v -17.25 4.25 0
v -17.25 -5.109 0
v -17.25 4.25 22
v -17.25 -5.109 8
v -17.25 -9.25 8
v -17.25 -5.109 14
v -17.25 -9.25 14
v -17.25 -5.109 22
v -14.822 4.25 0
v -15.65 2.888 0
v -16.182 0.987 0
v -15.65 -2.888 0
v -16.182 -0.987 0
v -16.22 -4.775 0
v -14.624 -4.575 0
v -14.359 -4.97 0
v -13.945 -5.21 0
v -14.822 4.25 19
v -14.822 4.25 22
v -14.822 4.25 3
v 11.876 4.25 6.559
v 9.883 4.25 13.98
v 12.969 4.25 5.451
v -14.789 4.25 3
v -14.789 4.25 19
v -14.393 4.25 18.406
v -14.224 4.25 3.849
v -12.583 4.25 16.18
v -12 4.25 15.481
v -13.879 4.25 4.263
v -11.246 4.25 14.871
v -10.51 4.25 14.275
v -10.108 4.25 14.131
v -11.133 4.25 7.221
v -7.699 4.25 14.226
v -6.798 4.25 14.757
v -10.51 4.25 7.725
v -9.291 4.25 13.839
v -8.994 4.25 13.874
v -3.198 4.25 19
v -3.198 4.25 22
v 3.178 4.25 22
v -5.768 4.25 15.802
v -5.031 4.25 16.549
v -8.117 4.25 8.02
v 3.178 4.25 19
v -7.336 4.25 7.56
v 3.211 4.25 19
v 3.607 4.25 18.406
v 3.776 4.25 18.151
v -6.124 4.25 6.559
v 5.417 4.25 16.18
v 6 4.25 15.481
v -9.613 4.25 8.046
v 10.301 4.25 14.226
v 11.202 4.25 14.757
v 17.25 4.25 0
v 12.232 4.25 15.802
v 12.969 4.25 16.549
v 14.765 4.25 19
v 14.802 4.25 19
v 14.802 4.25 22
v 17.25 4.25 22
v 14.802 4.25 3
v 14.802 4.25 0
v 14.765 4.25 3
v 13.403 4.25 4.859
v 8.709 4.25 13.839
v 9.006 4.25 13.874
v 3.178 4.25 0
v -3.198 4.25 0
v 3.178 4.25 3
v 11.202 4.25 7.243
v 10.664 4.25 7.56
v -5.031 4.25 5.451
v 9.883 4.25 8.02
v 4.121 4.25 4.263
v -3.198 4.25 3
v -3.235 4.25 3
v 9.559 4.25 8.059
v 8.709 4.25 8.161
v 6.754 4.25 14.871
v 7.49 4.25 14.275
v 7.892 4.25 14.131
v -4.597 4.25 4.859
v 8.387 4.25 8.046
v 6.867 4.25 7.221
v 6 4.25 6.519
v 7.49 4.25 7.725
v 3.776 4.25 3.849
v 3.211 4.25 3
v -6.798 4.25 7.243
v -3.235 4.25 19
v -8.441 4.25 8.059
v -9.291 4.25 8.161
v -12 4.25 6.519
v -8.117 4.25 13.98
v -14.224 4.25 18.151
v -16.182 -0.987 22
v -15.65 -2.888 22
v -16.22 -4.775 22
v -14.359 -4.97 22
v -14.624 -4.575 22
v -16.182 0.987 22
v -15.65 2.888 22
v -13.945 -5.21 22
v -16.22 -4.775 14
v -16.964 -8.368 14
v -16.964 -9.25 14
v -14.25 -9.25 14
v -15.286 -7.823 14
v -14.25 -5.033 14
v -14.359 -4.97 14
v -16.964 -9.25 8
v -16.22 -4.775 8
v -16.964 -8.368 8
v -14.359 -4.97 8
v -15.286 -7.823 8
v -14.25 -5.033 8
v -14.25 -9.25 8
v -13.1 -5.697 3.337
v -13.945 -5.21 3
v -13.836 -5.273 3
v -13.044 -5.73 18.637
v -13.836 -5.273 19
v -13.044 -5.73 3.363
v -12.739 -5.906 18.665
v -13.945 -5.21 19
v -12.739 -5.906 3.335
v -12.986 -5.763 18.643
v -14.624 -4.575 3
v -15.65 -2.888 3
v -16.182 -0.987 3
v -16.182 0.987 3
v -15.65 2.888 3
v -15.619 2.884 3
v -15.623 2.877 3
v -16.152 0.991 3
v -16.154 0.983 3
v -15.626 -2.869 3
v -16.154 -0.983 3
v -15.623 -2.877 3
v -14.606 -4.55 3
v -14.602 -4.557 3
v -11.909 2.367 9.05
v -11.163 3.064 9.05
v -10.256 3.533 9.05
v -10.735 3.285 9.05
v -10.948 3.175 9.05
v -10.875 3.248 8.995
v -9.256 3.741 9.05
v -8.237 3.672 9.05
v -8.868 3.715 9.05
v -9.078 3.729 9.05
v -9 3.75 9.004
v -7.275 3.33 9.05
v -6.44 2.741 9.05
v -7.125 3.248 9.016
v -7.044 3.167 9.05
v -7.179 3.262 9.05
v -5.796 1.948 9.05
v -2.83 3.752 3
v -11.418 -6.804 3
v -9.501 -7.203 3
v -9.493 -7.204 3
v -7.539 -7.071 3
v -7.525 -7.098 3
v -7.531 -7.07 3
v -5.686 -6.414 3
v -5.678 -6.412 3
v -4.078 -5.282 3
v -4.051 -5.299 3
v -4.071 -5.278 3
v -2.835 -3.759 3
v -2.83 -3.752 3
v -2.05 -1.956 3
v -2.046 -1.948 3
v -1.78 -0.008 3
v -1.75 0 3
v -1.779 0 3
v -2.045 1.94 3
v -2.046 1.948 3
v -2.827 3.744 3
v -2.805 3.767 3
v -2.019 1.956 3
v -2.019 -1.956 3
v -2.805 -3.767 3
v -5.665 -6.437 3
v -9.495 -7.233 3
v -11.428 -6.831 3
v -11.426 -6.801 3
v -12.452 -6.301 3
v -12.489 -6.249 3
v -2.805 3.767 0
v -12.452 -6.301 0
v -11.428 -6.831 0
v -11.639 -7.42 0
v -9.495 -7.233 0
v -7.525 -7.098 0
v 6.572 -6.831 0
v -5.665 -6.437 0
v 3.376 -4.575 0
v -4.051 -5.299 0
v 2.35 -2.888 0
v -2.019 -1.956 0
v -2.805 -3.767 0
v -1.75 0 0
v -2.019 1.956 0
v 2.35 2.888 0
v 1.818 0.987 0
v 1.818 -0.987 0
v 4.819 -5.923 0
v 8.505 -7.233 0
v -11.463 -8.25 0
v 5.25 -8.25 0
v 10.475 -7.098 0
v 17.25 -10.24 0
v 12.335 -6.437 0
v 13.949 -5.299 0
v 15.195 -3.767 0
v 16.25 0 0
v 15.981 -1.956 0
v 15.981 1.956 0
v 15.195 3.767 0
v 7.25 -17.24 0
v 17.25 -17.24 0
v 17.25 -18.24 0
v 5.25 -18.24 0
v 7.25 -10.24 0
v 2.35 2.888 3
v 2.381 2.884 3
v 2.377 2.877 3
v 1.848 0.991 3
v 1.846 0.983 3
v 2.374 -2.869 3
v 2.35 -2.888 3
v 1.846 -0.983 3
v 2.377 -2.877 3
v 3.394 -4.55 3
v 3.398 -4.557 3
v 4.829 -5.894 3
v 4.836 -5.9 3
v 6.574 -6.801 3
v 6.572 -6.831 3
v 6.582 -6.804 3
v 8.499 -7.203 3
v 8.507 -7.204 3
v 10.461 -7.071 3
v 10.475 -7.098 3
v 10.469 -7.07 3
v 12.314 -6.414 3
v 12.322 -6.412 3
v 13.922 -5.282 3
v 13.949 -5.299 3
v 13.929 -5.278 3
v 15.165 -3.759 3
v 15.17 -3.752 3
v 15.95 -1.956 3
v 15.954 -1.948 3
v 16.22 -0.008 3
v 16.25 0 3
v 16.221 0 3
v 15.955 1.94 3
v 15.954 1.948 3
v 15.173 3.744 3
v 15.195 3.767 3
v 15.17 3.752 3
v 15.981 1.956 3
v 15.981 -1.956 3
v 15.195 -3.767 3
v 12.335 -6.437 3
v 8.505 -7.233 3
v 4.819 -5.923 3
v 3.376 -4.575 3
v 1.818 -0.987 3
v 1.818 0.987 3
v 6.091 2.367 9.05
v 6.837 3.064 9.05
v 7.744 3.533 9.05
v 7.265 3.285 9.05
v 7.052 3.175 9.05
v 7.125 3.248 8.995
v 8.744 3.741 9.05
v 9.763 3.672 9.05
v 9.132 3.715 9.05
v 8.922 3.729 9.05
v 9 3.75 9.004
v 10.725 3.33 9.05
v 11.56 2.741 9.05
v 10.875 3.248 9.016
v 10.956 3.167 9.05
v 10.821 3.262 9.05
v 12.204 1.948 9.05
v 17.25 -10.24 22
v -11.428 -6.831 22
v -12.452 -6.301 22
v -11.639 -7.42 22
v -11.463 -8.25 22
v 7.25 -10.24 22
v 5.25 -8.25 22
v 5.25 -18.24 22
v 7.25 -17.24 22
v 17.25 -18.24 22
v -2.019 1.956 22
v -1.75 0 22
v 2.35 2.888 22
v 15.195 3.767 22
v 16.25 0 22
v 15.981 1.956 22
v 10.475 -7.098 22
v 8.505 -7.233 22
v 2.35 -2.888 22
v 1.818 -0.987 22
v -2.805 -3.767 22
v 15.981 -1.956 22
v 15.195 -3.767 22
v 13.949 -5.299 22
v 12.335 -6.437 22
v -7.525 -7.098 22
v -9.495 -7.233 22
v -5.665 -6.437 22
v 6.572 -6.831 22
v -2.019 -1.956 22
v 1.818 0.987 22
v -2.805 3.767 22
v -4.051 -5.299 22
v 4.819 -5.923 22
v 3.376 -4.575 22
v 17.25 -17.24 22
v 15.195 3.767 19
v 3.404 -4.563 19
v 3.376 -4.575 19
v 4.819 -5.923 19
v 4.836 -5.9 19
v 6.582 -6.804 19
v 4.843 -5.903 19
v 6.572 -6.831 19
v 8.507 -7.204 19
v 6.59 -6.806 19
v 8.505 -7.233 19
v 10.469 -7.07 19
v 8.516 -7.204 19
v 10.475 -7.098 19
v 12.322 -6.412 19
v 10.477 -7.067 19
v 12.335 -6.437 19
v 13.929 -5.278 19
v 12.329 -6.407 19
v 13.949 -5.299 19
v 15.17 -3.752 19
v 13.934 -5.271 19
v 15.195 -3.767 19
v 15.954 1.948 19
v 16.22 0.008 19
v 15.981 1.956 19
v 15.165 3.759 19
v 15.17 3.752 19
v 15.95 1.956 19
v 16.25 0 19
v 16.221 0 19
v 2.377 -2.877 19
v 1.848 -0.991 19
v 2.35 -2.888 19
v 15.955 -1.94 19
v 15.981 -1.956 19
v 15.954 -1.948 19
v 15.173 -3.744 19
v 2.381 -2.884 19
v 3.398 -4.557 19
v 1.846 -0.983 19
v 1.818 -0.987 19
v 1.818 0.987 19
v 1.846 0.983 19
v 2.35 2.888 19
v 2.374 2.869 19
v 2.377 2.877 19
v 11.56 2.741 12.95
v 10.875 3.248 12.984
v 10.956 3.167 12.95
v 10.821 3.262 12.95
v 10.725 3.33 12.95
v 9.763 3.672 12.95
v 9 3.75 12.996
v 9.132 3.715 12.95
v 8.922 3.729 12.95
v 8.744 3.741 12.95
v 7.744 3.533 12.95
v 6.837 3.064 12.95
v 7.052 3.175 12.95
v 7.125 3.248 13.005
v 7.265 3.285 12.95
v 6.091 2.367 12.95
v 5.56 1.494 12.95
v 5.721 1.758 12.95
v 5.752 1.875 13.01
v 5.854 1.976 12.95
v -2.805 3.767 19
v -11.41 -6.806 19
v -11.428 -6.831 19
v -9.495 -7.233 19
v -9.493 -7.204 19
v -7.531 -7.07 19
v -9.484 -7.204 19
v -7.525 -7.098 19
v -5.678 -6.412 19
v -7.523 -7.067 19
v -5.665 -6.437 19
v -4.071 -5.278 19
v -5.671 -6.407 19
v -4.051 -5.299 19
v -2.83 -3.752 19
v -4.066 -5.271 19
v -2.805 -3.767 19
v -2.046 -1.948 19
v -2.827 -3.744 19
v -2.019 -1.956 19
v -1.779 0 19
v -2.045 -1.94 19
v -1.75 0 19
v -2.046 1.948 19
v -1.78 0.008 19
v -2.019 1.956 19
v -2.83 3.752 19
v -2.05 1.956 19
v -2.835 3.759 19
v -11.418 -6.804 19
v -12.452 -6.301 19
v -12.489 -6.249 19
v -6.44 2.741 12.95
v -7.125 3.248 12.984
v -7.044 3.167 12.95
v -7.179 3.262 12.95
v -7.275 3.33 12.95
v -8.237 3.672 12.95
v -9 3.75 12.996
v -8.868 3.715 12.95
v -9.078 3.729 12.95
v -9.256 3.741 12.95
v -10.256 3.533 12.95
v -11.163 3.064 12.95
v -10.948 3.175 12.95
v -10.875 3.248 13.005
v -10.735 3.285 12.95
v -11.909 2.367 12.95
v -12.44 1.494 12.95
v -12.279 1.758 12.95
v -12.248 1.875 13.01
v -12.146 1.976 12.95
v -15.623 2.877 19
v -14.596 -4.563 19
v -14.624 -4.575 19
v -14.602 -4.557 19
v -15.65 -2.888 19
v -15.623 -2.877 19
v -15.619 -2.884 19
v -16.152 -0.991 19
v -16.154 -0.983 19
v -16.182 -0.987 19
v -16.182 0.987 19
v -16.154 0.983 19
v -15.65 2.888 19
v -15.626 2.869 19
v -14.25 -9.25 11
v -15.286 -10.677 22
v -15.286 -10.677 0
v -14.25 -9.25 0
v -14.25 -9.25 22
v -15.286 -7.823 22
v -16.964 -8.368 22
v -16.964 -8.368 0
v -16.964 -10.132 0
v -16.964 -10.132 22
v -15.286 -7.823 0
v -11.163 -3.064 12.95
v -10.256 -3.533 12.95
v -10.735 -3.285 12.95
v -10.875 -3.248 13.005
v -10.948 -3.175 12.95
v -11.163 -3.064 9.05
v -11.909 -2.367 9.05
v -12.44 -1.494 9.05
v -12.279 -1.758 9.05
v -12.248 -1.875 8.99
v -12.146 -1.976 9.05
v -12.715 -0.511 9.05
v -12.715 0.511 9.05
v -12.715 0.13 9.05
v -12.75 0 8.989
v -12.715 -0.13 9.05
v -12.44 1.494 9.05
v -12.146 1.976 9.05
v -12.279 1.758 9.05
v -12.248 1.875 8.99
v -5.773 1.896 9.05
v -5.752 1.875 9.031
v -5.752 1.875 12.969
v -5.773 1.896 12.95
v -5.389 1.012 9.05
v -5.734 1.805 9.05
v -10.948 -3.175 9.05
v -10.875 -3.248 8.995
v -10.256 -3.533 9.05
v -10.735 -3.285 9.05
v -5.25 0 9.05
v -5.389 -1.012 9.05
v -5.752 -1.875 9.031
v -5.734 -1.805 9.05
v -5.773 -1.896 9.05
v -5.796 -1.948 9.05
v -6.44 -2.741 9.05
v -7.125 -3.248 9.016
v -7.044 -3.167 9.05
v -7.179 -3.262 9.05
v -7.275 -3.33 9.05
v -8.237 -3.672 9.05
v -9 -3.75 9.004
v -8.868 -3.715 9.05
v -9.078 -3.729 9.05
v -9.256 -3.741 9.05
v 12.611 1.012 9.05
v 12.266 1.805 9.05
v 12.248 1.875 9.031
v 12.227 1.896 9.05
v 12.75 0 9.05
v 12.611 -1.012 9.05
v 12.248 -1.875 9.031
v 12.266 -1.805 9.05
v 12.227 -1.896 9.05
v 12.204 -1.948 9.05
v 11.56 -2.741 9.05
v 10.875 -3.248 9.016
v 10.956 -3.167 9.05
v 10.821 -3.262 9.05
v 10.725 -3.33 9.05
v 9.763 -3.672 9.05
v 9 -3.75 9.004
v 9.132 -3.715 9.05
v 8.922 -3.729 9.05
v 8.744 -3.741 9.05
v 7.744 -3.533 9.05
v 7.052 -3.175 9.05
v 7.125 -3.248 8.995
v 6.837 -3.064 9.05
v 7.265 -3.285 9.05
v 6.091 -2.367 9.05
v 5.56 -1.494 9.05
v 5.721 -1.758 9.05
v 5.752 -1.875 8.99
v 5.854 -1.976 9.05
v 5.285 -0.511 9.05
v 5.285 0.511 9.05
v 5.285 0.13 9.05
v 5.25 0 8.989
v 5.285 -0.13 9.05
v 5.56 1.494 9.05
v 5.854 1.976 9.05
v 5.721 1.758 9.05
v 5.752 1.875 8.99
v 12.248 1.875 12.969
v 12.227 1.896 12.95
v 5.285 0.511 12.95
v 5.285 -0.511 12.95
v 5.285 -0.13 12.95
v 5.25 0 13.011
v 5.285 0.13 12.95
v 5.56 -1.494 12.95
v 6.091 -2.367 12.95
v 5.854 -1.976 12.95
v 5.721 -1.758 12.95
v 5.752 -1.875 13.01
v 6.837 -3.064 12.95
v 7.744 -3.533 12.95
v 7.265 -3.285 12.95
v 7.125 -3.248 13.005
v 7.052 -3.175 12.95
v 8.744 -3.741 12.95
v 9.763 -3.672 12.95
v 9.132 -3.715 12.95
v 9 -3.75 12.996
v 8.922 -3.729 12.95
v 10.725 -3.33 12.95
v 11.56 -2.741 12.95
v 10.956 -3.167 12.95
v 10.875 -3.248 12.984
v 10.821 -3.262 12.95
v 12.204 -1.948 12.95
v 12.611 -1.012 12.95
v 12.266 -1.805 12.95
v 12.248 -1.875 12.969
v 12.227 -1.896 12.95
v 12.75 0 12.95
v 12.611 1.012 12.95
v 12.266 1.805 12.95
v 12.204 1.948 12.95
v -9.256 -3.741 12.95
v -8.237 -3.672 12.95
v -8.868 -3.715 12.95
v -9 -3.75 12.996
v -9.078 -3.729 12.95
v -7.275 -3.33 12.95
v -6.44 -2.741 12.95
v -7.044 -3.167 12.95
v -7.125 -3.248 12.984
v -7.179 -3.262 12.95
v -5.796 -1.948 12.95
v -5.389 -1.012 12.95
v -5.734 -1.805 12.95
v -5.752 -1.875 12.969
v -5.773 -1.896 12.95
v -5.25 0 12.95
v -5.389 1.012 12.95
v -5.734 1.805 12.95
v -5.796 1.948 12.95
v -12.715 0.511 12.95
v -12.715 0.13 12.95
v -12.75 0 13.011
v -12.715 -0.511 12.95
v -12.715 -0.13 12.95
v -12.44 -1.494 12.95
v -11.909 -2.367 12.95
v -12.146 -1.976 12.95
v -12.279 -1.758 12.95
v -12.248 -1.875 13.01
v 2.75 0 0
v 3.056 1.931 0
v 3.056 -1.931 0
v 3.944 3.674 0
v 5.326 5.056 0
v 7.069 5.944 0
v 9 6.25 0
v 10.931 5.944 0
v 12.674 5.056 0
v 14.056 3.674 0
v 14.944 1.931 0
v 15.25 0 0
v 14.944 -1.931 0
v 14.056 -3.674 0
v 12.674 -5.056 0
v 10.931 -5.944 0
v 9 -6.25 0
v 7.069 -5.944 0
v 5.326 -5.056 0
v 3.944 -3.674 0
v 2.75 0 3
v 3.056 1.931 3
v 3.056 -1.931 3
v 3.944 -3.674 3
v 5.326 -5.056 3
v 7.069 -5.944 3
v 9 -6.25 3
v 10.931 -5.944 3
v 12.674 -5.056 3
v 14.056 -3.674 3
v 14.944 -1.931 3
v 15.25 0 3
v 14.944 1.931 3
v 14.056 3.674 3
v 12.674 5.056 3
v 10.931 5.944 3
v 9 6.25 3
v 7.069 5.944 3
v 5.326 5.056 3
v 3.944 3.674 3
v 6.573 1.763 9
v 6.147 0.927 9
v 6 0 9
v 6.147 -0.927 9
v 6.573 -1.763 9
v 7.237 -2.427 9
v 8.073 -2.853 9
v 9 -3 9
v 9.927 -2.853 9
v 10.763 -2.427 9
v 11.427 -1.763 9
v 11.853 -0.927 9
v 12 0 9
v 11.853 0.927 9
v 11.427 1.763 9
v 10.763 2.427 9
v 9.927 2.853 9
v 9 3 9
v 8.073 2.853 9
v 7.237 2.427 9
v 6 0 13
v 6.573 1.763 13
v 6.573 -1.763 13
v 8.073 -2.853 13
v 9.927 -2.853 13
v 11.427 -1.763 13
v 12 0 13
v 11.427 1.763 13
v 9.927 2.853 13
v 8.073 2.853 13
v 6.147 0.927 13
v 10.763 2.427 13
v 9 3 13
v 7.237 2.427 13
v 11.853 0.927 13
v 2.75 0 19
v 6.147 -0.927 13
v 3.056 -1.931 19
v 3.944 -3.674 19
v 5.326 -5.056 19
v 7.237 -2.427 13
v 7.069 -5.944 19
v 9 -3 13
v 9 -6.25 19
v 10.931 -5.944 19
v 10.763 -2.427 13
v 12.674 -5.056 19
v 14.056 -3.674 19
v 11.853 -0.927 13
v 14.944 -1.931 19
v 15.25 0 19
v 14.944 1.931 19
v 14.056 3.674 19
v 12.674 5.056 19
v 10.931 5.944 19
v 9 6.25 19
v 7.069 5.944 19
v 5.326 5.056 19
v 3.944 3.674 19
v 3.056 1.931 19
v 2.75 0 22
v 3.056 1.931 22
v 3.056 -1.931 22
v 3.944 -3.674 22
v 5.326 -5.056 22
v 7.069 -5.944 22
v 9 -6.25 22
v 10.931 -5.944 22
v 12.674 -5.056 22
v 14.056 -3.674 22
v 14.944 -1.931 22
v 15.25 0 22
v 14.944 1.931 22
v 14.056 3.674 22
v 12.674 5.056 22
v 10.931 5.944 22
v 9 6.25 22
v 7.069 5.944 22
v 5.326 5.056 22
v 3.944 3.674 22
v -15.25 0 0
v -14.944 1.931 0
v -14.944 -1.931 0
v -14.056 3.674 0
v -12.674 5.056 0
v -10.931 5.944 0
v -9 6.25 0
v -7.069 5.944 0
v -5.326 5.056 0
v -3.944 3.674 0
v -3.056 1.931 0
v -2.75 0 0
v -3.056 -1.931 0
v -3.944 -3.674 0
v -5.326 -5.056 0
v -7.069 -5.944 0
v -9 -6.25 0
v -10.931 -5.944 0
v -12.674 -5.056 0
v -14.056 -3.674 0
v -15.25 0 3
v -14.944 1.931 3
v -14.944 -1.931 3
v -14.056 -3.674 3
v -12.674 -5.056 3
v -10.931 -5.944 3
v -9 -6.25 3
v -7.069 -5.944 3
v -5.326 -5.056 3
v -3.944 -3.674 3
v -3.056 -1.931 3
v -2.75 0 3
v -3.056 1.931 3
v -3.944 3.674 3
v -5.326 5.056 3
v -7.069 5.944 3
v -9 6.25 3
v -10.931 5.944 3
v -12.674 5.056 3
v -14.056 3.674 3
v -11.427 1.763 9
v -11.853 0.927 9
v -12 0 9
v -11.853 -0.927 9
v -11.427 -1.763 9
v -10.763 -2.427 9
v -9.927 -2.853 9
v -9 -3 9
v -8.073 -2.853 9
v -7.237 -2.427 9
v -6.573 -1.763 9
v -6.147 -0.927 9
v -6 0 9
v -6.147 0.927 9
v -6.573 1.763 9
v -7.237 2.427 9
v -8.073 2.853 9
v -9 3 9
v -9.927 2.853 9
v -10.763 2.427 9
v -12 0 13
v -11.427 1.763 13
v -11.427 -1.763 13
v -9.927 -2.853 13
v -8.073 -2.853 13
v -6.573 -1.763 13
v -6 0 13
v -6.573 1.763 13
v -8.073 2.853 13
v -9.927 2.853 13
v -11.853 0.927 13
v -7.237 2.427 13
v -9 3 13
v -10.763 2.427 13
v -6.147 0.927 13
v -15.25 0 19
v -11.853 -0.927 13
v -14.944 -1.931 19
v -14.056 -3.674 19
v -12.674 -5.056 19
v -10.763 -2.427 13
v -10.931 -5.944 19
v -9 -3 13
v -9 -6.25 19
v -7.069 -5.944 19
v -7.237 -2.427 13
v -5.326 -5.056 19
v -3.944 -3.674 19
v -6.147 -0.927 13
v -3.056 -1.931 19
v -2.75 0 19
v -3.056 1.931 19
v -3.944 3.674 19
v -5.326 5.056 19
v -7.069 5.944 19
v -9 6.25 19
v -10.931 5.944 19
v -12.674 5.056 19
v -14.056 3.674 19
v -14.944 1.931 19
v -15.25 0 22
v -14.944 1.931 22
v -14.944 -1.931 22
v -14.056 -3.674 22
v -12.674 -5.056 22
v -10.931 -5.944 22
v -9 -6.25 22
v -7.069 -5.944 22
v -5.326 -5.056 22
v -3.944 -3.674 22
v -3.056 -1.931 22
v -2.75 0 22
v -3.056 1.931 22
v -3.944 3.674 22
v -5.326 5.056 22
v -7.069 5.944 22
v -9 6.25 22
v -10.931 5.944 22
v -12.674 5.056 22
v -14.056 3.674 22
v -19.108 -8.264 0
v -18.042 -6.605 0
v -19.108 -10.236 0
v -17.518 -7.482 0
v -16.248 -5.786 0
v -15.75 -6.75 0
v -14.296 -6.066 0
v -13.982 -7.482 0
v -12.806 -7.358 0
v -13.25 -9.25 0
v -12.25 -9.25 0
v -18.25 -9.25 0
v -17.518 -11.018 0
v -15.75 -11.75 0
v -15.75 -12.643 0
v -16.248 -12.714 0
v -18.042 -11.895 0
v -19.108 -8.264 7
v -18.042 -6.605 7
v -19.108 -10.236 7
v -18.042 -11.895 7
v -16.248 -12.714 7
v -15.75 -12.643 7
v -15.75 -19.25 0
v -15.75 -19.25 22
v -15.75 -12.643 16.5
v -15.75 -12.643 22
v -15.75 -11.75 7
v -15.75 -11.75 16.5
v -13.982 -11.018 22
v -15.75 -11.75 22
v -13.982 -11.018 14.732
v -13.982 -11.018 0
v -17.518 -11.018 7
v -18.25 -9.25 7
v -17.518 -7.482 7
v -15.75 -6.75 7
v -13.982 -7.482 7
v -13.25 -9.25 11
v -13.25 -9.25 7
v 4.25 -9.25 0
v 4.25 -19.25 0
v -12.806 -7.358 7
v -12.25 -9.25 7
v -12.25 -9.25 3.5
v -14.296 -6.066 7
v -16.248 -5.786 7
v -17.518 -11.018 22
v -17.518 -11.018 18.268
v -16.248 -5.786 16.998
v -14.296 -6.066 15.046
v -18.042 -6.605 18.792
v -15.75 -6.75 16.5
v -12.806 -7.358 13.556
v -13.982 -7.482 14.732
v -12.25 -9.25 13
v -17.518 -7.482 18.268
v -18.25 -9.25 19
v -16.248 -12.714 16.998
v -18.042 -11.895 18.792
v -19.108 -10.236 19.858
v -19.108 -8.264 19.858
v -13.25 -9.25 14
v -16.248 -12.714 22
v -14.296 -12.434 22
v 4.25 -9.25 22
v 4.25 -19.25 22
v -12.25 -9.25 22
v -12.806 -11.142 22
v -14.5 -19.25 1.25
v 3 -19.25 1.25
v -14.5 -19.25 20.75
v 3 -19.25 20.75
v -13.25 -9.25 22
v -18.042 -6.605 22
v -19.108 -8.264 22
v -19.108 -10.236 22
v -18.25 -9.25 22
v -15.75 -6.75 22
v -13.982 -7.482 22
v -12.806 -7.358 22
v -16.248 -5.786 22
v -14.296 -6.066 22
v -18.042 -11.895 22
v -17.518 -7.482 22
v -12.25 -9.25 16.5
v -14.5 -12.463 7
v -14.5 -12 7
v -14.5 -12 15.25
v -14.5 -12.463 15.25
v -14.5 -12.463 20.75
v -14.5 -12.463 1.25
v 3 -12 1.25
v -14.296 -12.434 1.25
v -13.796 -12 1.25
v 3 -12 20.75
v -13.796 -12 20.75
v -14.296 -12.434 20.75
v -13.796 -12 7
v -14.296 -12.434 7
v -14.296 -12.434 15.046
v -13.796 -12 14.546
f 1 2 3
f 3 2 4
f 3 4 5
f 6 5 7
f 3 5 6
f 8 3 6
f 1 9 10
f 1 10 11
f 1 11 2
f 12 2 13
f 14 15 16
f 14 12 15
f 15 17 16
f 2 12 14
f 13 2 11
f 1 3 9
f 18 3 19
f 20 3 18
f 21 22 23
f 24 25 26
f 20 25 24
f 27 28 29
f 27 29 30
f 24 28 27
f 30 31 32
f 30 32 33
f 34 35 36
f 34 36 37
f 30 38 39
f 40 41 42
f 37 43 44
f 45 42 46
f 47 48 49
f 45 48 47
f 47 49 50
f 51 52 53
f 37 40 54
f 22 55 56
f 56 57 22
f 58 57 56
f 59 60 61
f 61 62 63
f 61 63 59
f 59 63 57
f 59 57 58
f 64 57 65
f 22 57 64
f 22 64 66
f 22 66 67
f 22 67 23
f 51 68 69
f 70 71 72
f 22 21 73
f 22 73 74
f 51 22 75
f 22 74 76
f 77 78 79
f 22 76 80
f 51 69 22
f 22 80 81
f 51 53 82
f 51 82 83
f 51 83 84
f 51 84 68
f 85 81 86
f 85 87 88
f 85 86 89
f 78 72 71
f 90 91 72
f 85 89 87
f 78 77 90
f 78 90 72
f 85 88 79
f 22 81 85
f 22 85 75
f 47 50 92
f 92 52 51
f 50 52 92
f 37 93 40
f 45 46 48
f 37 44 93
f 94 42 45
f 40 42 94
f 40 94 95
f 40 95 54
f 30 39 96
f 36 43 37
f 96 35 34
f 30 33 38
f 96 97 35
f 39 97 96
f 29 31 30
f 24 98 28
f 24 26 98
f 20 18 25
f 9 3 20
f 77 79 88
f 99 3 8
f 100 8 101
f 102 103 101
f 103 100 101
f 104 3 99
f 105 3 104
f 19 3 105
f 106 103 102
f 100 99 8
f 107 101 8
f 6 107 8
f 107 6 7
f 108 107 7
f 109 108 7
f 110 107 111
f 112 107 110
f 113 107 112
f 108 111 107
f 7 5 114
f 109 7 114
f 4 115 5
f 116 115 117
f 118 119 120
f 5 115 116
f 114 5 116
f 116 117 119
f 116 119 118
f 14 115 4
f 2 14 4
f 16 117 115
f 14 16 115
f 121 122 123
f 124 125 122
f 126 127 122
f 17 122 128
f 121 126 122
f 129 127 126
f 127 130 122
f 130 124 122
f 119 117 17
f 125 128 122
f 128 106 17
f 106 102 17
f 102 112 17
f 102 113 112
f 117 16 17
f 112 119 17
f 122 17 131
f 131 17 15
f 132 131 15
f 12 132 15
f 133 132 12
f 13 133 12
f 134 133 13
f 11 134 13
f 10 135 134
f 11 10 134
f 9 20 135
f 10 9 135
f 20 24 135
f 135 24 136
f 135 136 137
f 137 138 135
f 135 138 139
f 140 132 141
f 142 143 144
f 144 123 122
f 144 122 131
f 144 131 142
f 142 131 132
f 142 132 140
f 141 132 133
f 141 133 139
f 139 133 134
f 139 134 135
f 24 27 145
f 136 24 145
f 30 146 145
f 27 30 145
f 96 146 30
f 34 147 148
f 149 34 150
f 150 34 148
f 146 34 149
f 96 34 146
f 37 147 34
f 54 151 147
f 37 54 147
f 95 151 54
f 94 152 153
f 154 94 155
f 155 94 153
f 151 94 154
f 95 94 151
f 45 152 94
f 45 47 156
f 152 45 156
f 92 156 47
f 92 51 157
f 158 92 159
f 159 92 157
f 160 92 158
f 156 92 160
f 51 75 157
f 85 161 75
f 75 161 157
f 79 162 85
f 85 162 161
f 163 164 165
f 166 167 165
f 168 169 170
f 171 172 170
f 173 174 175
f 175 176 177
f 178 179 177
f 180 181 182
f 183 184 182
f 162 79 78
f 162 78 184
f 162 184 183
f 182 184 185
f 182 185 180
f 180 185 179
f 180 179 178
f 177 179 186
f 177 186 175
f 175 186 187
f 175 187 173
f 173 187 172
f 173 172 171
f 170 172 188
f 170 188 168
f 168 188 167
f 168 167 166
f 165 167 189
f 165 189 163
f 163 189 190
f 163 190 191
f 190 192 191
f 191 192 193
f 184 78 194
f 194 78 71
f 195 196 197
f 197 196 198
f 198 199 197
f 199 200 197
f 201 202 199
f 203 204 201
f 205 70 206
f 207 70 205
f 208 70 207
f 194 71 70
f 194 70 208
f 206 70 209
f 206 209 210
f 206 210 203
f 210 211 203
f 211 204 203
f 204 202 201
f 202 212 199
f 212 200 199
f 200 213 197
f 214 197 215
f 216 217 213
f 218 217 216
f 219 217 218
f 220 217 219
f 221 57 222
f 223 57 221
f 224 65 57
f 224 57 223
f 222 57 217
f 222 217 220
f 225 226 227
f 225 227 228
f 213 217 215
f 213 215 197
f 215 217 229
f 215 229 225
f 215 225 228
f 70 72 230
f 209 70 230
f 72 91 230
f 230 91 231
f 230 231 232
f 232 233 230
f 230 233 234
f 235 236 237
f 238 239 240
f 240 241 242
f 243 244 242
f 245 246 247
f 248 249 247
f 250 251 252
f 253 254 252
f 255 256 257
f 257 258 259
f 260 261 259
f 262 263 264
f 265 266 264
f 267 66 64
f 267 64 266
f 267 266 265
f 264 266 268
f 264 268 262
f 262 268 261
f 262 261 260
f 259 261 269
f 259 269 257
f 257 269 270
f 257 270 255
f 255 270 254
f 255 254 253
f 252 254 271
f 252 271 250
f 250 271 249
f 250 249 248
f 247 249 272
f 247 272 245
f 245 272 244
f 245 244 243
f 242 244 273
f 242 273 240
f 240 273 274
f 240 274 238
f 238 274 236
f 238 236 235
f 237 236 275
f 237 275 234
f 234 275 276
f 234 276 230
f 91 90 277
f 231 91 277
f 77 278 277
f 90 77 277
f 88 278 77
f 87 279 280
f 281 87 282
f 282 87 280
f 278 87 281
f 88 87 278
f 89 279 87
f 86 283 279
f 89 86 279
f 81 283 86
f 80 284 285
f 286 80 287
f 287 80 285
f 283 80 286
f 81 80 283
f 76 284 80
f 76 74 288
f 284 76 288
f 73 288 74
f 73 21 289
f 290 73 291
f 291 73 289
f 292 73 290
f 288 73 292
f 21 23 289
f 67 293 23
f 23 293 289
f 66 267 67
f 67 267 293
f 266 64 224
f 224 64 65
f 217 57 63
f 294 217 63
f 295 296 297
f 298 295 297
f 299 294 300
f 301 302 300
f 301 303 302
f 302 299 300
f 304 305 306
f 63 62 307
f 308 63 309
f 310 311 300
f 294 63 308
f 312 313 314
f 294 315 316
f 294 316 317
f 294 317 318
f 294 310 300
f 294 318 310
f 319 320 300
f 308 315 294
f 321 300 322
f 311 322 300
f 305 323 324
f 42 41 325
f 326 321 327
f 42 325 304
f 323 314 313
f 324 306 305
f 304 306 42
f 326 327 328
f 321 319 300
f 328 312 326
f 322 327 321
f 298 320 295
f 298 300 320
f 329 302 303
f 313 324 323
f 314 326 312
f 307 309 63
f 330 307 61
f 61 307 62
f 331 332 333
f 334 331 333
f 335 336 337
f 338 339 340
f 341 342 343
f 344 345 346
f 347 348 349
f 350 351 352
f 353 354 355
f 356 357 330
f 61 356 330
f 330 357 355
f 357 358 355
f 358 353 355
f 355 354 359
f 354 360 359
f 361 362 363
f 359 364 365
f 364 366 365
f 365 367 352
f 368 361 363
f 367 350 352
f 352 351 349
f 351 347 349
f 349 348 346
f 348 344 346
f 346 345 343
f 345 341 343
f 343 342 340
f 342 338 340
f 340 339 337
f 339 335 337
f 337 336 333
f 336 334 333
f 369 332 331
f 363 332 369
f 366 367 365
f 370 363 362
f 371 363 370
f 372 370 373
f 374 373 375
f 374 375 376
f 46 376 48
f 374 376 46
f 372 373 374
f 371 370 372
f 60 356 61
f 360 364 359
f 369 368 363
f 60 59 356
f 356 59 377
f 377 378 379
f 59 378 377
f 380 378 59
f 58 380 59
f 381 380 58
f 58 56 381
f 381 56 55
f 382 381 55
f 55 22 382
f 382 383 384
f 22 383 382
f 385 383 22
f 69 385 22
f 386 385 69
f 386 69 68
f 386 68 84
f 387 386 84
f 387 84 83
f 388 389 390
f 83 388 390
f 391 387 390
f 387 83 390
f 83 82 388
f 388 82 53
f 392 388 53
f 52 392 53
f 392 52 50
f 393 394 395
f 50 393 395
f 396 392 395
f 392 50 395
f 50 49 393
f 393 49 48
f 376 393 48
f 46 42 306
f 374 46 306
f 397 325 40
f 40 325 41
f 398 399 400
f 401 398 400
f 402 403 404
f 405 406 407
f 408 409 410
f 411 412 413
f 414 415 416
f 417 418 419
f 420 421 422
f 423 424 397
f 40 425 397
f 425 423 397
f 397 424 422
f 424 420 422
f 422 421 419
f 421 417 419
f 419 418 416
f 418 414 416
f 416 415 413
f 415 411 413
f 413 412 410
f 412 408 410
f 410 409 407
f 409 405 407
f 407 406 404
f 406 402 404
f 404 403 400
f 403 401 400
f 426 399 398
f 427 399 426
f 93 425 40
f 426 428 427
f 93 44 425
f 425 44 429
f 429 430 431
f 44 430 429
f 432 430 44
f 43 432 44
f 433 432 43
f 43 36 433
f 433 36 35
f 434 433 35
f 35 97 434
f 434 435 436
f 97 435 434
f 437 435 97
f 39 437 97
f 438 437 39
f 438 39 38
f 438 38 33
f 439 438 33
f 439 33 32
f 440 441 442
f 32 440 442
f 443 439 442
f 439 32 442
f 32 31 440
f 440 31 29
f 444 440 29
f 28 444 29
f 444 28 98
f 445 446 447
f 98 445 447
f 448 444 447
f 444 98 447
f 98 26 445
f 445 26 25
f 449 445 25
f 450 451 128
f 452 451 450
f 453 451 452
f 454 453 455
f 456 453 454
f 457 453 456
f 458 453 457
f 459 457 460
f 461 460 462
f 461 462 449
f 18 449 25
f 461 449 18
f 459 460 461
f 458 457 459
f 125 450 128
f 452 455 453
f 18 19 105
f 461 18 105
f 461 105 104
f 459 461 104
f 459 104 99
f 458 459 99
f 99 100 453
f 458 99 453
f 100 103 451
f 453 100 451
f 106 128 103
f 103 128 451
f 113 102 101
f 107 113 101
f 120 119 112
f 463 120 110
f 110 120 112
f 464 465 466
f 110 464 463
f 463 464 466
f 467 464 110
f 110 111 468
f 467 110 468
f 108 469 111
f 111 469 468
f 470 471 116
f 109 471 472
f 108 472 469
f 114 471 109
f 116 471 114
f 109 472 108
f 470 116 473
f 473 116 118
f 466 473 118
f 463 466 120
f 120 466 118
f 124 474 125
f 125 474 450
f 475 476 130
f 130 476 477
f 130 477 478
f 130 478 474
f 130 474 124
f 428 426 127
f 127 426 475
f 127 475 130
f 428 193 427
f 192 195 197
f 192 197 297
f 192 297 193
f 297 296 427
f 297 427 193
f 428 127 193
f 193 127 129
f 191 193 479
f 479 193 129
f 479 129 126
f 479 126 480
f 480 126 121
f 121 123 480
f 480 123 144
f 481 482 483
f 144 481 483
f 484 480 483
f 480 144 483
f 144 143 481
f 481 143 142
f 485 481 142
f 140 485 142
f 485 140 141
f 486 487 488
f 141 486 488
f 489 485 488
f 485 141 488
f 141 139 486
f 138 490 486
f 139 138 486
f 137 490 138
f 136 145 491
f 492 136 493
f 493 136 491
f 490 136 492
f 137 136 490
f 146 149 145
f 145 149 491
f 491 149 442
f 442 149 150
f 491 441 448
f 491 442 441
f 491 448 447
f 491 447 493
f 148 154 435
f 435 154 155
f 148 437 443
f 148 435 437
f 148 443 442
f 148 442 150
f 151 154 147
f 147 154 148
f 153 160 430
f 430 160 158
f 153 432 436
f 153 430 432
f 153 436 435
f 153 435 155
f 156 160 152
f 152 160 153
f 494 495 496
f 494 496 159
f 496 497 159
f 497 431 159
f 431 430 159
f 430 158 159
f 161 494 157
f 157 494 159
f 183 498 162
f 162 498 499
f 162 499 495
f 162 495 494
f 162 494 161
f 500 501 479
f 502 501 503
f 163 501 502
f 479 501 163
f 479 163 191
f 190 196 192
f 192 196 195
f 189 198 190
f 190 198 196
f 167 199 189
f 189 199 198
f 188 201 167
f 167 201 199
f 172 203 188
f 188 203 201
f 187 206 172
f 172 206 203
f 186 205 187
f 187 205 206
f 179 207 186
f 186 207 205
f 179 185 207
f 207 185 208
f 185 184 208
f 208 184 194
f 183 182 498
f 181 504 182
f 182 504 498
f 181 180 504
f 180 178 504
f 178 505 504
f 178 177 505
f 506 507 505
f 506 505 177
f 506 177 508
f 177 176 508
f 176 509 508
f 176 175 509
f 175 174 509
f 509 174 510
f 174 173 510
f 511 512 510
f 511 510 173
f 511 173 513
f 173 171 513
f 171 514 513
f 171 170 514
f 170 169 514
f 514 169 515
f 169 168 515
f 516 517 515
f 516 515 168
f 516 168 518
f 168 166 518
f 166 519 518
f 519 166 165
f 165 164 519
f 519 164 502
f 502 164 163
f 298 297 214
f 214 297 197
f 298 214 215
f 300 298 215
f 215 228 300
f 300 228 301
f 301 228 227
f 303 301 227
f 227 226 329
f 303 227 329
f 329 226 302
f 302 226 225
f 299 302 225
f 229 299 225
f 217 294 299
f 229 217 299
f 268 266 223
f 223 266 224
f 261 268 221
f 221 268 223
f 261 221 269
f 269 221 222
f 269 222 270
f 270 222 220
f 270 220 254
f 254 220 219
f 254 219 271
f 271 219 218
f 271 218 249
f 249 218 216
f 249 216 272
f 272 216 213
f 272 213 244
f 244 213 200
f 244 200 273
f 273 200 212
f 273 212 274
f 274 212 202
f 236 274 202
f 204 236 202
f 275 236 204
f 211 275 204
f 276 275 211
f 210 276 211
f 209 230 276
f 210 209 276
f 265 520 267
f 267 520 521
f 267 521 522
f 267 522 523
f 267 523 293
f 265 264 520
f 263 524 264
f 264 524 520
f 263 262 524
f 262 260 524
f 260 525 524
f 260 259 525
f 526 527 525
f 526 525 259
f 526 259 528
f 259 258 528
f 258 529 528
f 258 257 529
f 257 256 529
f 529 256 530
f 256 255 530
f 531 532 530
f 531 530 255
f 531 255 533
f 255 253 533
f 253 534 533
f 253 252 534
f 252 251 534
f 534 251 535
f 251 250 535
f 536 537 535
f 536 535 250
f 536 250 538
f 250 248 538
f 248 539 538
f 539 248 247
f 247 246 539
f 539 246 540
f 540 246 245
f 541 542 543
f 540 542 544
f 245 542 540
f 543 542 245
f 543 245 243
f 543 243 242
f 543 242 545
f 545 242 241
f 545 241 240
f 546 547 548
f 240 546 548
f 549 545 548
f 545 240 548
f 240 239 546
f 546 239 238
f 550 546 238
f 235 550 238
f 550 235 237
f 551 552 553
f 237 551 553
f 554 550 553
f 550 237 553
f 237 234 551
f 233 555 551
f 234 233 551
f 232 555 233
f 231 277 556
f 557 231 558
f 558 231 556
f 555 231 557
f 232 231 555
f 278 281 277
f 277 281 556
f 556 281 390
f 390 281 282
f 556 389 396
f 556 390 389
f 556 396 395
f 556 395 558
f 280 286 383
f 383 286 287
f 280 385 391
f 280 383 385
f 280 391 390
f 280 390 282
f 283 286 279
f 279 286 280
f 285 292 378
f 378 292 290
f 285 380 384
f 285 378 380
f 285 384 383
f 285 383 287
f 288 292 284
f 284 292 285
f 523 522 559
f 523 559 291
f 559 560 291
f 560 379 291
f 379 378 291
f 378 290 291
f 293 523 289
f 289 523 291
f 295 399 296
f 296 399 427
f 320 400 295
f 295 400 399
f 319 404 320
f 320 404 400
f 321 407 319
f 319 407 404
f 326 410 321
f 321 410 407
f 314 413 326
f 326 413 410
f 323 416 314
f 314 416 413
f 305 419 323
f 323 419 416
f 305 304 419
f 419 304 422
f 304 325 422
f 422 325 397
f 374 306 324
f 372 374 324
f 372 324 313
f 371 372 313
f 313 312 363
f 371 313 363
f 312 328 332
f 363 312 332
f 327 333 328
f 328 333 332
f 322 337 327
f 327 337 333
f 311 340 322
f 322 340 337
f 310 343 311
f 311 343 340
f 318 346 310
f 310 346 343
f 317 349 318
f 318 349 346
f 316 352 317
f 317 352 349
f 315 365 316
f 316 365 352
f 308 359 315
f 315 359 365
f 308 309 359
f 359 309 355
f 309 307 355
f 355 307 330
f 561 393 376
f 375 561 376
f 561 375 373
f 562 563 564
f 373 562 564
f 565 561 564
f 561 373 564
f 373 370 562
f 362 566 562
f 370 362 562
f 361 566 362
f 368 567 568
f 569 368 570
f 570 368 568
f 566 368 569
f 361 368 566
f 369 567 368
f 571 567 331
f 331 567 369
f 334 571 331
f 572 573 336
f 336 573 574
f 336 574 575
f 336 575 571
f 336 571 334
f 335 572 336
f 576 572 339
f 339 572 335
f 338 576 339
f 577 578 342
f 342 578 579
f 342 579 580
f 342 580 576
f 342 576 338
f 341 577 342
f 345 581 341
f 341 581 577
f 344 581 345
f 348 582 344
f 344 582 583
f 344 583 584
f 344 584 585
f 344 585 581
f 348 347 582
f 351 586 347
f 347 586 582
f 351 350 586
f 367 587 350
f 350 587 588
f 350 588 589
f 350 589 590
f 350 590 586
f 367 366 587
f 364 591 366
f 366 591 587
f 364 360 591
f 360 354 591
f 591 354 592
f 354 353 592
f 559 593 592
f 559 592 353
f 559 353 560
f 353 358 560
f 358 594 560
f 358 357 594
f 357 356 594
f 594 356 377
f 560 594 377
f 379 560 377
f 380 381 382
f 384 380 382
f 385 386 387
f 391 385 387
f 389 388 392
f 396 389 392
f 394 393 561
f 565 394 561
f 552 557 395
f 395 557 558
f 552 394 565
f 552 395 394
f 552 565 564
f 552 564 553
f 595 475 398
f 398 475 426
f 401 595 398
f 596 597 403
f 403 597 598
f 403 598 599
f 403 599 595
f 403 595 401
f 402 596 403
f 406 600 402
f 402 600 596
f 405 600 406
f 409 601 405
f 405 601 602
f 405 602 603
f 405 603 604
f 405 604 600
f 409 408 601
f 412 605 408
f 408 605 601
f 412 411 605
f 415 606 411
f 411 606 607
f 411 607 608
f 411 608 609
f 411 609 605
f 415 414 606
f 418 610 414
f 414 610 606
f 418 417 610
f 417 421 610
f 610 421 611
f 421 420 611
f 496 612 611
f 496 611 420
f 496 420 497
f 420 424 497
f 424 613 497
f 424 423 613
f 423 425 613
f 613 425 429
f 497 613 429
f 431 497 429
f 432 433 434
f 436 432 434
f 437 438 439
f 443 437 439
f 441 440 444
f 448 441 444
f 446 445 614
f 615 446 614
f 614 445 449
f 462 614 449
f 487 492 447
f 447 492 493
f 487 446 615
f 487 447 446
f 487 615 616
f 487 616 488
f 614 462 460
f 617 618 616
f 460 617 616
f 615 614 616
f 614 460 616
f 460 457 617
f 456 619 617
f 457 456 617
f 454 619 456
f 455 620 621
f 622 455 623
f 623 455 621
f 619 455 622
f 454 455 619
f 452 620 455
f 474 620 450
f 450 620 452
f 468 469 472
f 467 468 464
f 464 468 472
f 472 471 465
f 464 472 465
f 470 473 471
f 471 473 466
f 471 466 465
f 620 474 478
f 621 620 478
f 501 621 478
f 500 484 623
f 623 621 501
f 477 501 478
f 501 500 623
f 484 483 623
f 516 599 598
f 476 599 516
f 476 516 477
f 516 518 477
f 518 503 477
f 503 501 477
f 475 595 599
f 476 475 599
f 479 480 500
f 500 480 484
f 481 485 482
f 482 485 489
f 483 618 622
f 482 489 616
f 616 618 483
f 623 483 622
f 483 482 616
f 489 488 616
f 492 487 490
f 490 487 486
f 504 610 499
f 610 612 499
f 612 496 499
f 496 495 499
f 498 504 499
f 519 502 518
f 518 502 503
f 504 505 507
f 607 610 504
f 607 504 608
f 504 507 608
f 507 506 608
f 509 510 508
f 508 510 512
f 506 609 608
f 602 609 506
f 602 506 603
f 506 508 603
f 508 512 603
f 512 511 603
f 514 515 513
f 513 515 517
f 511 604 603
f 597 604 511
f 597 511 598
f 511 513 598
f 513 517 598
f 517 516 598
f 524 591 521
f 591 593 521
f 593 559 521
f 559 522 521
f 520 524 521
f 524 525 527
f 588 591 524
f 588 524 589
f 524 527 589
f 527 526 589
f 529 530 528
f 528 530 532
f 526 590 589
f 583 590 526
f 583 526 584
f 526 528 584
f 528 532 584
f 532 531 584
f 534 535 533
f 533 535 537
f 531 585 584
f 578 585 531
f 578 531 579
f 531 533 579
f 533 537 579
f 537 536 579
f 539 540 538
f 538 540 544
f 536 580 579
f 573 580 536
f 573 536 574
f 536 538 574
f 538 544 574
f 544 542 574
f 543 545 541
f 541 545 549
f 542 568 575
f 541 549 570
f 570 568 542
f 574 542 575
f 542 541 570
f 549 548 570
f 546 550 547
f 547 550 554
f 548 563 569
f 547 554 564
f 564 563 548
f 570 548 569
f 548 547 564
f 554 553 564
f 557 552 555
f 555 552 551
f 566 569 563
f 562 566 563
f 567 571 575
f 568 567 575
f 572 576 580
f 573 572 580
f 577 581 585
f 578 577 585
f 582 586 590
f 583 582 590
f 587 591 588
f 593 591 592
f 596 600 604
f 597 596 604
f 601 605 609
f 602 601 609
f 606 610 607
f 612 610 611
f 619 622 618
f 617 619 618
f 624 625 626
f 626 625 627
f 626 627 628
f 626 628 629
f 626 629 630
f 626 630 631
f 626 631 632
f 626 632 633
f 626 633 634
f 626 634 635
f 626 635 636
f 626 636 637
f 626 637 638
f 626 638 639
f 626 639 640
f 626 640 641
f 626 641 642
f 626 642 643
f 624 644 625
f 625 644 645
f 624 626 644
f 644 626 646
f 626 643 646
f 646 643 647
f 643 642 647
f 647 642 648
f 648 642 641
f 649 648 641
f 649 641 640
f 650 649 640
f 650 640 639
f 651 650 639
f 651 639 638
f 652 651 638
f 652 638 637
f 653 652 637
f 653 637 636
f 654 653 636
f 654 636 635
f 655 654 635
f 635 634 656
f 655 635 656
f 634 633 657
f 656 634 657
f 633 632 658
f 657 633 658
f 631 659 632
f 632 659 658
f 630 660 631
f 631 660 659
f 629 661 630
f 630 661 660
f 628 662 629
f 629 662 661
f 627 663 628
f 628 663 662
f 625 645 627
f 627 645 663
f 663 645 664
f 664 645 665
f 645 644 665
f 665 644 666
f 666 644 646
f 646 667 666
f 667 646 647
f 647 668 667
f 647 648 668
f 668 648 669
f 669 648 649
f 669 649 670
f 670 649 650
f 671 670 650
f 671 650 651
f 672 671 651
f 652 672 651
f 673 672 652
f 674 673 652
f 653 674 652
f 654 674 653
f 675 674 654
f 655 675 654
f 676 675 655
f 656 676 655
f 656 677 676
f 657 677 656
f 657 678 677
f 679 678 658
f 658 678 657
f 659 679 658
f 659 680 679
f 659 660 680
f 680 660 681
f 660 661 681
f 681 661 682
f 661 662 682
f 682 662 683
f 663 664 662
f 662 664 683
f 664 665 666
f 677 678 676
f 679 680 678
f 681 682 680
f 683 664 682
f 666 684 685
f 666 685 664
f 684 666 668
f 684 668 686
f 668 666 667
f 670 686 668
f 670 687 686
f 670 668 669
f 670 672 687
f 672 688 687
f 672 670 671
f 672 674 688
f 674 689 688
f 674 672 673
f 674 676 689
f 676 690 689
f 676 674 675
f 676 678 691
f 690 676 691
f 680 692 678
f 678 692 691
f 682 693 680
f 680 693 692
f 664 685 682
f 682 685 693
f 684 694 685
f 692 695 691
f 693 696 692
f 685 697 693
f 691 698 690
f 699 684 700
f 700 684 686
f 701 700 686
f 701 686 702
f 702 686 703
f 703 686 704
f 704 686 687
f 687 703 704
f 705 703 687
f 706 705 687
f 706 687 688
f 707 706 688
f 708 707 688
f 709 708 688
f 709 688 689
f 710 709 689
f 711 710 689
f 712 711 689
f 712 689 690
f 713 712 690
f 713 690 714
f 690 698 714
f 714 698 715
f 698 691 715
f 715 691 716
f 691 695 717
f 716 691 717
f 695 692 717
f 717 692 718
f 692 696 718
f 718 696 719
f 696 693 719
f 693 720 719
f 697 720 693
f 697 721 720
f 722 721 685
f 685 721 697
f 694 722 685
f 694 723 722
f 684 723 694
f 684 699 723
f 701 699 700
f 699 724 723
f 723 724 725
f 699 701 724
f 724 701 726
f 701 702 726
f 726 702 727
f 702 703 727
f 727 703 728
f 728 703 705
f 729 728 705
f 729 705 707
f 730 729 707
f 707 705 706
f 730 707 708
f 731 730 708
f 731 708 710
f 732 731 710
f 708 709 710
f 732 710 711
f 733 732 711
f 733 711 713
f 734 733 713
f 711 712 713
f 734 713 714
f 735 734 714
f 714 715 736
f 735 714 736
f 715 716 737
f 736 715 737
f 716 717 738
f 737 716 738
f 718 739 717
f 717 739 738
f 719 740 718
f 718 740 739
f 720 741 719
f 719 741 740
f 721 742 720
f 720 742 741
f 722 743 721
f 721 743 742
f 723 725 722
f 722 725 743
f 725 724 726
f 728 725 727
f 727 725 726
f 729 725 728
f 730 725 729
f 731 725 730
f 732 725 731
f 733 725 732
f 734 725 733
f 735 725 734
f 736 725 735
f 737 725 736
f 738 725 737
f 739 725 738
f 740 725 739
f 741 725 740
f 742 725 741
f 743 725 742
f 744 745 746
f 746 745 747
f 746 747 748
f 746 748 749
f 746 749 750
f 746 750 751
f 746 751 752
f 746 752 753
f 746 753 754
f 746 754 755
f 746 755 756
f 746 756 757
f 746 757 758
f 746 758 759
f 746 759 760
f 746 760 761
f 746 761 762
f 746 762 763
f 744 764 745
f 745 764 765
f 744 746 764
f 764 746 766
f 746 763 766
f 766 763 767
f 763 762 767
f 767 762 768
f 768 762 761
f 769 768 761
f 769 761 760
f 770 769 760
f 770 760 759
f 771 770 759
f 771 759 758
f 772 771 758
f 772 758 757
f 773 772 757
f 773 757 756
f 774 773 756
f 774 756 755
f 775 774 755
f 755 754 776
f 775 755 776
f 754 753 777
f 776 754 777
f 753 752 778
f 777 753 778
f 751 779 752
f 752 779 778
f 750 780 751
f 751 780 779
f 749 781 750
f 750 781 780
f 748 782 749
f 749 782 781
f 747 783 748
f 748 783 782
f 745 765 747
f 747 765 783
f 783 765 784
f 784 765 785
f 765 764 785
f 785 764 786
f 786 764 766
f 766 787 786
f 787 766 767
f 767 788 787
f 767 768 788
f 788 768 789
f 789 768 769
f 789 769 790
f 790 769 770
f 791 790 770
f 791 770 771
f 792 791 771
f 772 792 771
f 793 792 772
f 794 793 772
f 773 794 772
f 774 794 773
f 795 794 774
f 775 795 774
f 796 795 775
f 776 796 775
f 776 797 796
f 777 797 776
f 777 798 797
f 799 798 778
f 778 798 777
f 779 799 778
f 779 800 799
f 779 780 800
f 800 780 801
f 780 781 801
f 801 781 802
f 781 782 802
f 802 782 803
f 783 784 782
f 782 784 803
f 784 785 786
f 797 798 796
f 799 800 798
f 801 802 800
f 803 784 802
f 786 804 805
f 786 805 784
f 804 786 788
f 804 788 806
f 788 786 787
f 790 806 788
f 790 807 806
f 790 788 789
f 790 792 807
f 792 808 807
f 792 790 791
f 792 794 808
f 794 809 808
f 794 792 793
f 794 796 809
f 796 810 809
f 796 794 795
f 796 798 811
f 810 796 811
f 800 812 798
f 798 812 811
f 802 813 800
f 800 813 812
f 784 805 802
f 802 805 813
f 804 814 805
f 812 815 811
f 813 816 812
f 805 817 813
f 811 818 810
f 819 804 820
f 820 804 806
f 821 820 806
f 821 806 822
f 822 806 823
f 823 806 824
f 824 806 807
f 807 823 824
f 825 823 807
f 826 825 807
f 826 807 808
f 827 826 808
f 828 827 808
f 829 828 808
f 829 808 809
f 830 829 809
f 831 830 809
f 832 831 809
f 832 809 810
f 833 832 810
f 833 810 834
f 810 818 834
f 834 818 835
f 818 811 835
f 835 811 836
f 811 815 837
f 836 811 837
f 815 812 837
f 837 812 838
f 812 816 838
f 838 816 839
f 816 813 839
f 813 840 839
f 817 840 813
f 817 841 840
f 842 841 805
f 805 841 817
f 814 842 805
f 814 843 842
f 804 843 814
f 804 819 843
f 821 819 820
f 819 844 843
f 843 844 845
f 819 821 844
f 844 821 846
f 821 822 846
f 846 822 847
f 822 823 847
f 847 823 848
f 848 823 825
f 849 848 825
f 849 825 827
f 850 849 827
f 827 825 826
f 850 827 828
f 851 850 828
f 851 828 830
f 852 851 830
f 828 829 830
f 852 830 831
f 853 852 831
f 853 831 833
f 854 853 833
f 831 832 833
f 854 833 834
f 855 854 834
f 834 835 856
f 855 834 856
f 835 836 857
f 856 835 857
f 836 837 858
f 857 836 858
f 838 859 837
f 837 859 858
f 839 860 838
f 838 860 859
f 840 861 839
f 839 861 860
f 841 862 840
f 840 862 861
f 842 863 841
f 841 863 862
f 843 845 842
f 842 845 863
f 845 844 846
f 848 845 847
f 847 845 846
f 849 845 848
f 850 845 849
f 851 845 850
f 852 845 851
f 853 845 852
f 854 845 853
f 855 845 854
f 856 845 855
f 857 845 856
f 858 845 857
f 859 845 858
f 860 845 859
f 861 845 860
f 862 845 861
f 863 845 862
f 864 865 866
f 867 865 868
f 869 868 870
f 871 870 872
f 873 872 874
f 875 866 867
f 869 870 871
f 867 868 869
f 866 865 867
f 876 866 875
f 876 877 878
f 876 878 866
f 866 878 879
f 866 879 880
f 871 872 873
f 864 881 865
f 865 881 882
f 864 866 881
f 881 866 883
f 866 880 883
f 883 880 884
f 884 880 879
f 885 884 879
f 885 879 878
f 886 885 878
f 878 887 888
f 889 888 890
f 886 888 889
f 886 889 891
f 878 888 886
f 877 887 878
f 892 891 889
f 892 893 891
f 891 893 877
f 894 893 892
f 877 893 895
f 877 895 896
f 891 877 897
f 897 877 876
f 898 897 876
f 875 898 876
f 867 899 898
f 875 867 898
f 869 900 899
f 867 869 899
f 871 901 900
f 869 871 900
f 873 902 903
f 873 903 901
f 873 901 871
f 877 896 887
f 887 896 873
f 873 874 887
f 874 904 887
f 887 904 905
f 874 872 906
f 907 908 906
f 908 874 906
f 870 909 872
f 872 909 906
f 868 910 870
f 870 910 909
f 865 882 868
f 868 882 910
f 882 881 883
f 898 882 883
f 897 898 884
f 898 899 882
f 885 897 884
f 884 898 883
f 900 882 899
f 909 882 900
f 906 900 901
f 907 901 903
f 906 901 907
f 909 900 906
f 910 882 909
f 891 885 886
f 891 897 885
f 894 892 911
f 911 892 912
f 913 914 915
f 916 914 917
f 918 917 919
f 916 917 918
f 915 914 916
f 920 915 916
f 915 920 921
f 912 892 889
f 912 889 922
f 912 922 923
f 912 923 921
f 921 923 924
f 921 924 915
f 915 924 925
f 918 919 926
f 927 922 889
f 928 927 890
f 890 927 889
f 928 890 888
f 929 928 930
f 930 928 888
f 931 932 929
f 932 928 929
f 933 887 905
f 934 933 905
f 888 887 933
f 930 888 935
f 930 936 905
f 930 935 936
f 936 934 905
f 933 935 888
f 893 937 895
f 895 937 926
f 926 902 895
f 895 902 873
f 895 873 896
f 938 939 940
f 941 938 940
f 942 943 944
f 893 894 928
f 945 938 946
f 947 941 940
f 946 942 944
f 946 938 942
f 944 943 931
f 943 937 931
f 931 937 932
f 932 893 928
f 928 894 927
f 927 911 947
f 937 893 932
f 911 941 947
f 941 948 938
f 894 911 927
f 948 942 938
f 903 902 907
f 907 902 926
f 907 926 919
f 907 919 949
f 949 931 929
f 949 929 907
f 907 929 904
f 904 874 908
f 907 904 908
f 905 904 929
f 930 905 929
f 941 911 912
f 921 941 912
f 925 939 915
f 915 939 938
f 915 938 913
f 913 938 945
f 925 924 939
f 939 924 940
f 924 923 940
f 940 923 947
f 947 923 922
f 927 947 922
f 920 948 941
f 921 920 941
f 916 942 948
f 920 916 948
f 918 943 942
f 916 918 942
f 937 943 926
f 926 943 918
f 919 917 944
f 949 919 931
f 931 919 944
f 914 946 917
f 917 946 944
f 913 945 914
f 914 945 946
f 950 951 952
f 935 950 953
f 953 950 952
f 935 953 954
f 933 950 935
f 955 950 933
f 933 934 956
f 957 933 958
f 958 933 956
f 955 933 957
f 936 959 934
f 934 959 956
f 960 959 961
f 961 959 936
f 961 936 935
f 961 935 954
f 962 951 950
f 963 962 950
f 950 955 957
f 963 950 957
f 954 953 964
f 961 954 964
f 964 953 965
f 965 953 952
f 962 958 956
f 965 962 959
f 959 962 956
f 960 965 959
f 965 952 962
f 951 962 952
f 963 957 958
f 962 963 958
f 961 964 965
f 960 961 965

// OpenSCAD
// Tiny Toy Dump Truck
// No support needed, no assembly required (*)
// (*) some cleanup will probably be necessary, however
// Created by: Madscifi
// License - Public domain
// Inspired by (but not really derived from)
// toy tanker truck by jag (thingiverse thing:5273)

// Sliced with Skeinforge using:
//  0.2mm - Layer Thickness
//  2.5 - Perimeter Width over Thickness (ratio)

// V2	moved support_width definition to the start of the script, and fixed the positioning of the cab
//	so it is positioned correctly in the case that wheel_dia or bed_lift is modified.
//	As delivered, this version prints essentially the same as the previous version unless
//	you modify wheel_dia or bed_lift.

wheel_dia=12.5;
wheel_flat_thickness=3;
wheel_conic_dist=6;
wheel_base_dist=18;
wheel_cutout_extra=1;
axle_cutout=0.75;
axle_dia=6;
axle_len=4;
body_lift=2;
bed_axle_dia=3;
bed_axle_cutout=1;
bed_axle_bearing_extra=1;
bed_height=10;
bed_len=20;
bed_wall=2.5;
bed_axle_bearing_wall=1;
bed_bearing_cutout=1;
cab_sep=1;
cab_wall=2;
cab_roof=1;
support_width=6;

width=wheel_flat_thickness*2+wheel_conic_dist*2+axle_len;
length=wheel_base_dist+wheel_dia+wheel_cutout_extra*4;
bearing_dia=bed_axle_dia+bed_axle_cutout*2+bed_axle_bearing_wall*2;

// If you change the size of things this is the one value that is 
// completely emperical - you'll probably need to tweek this.
bed_axle_slice_offset=-width/4+support_width/2+bed_axle_cutout*2.5;

module wheel(extra,aextra)
{
	union()
	{
		translate([0,0,wheel_conic_dist]) cylinder(h=wheel_flat_thickness+extra,r=wheel_dia/2+extra);
		translate([0,0,-extra/20]) cylinder(h=wheel_conic_dist+extra/10,r1=axle_dia/2+aextra,r2=wheel_dia/2+extra);
	}
}
module axle(extra,aextra)
{
	union()
	{
		translate([0,-axle_len/2,0]) rotate([90,0,0]) wheel(extra,aextra);
		translate([0,axle_len/2,0]) rotate([-90,0,0]) wheel(extra,aextra);
		translate([0,axle_len/2+0.1,0]) rotate([90,0,0]) cylinder(h=axle_len+0.2,r=axle_dia/2+aextra);
	}
}


module bed()
{
	cutout_dia = bed_axle_dia+bed_axle_cutout*2;
	bearing_len=width/2-support_width/2-bed_axle_cutout;

	union()
	{
		difference()
		{
			translate([bed_len/2,0,bed_height/2]) 
				cube([bed_len,width,bed_height],center=true);
			translate([bed_len/2,0,bed_height/2+bed_axle_dia/2]) 
				cube([bed_len-bed_wall,width-bed_wall,bed_height-bed_wall],center=true);
			rotate([90,0,0]) cylinder(h=width+0.01,r=cutout_dia/2,center=true);
		}
		difference()
		{
			translate([0, width/4,0]) 
			difference()
			{
				rotate([90,0,0]) cylinder( h=width/2,r=bearing_dia/2,center=true);
				translate([0,bed_axle_slice_offset,0]) 
					rotate([0,0,45]) translate([-50,0,0]) 
						cube([100,100,100],center=true);
			}
			rotate([90,0,0]) cylinder( h=width+0.2, r=cutout_dia/2, center=true);
			
		}
		difference()
		{
			translate([0, -bearing_len/2-support_width/2-bed_axle_cutout,0]) 
				rotate([90,0,0]) 
					cylinder( h=bearing_len,r=bearing_dia/2,center=true);
			rotate([90,0,0]) cylinder( h=width+0.2, r=cutout_dia/2, center=true);
		}
	}
}

module bed_axle()
{
         union()
         {
		rotate([90,0,0]) cylinder(h=width,r=bed_axle_dia/2,center=true);
		translate([0,0,-bed_axle_dia]) cube([bed_axle_dia,6,bed_axle_dia*2],center=true);
          }
}

module bed_axle_cutout()
{
	rotate([90,0,0]) cylinder(h=width+0.1,r=bearing_dia/2+bed_bearing_cutout,center=true);
}

module cab()
{
	translate([-(length-bed_len-bed_axle_dia/2-cab_sep)/2,0,bed_height/2])
	difference()
	{
		cube([length-bed_len-bed_axle_dia/2-cab_sep,width,bed_height],center=true);
		translate([cab_wall,0,(cab_wall-cab_roof)/2]) cube([length-bed_len-bed_axle_dia/2-cab_sep,width+0.1,bed_height-cab_wall-cab_roof],center=true);
	}
}

translate([0,0,width/2])
rotate([90,0,0])
{
	union()
	{
		// body
		difference()
		{
			translate([0,0,body_lift]) cube([length,width,wheel_dia],center=true);
			translate([wheel_base_dist/2,0,0]) axle(wheel_cutout_extra,axle_cutout);
			translate([-wheel_base_dist/2,0,0]) axle(wheel_cutout_extra,axle_cutout);
			translate([-length/2+bed_axle_dia/2,0,wheel_dia/2+body_lift+1]) bed_axle_cutout();
		}
		
		// wheels and axles
		translate([wheel_base_dist/2,0,0]) axle(0,0);
		translate([-wheel_base_dist/2,0,0]) axle(0,0);
	
		// bed
		translate([-length/2+bed_axle_dia/2,0,wheel_dia/2+body_lift+1]) 
		{
			bed_axle();
		}
	
		// cab
		translate([(length/2),0,wheel_dia/2+body_lift-0.01]) cab();

		translate([-length/2+bed_axle_dia/2,0,wheel_dia/2+body_lift+1]) 
		{
			bed();
		}
	}
}
